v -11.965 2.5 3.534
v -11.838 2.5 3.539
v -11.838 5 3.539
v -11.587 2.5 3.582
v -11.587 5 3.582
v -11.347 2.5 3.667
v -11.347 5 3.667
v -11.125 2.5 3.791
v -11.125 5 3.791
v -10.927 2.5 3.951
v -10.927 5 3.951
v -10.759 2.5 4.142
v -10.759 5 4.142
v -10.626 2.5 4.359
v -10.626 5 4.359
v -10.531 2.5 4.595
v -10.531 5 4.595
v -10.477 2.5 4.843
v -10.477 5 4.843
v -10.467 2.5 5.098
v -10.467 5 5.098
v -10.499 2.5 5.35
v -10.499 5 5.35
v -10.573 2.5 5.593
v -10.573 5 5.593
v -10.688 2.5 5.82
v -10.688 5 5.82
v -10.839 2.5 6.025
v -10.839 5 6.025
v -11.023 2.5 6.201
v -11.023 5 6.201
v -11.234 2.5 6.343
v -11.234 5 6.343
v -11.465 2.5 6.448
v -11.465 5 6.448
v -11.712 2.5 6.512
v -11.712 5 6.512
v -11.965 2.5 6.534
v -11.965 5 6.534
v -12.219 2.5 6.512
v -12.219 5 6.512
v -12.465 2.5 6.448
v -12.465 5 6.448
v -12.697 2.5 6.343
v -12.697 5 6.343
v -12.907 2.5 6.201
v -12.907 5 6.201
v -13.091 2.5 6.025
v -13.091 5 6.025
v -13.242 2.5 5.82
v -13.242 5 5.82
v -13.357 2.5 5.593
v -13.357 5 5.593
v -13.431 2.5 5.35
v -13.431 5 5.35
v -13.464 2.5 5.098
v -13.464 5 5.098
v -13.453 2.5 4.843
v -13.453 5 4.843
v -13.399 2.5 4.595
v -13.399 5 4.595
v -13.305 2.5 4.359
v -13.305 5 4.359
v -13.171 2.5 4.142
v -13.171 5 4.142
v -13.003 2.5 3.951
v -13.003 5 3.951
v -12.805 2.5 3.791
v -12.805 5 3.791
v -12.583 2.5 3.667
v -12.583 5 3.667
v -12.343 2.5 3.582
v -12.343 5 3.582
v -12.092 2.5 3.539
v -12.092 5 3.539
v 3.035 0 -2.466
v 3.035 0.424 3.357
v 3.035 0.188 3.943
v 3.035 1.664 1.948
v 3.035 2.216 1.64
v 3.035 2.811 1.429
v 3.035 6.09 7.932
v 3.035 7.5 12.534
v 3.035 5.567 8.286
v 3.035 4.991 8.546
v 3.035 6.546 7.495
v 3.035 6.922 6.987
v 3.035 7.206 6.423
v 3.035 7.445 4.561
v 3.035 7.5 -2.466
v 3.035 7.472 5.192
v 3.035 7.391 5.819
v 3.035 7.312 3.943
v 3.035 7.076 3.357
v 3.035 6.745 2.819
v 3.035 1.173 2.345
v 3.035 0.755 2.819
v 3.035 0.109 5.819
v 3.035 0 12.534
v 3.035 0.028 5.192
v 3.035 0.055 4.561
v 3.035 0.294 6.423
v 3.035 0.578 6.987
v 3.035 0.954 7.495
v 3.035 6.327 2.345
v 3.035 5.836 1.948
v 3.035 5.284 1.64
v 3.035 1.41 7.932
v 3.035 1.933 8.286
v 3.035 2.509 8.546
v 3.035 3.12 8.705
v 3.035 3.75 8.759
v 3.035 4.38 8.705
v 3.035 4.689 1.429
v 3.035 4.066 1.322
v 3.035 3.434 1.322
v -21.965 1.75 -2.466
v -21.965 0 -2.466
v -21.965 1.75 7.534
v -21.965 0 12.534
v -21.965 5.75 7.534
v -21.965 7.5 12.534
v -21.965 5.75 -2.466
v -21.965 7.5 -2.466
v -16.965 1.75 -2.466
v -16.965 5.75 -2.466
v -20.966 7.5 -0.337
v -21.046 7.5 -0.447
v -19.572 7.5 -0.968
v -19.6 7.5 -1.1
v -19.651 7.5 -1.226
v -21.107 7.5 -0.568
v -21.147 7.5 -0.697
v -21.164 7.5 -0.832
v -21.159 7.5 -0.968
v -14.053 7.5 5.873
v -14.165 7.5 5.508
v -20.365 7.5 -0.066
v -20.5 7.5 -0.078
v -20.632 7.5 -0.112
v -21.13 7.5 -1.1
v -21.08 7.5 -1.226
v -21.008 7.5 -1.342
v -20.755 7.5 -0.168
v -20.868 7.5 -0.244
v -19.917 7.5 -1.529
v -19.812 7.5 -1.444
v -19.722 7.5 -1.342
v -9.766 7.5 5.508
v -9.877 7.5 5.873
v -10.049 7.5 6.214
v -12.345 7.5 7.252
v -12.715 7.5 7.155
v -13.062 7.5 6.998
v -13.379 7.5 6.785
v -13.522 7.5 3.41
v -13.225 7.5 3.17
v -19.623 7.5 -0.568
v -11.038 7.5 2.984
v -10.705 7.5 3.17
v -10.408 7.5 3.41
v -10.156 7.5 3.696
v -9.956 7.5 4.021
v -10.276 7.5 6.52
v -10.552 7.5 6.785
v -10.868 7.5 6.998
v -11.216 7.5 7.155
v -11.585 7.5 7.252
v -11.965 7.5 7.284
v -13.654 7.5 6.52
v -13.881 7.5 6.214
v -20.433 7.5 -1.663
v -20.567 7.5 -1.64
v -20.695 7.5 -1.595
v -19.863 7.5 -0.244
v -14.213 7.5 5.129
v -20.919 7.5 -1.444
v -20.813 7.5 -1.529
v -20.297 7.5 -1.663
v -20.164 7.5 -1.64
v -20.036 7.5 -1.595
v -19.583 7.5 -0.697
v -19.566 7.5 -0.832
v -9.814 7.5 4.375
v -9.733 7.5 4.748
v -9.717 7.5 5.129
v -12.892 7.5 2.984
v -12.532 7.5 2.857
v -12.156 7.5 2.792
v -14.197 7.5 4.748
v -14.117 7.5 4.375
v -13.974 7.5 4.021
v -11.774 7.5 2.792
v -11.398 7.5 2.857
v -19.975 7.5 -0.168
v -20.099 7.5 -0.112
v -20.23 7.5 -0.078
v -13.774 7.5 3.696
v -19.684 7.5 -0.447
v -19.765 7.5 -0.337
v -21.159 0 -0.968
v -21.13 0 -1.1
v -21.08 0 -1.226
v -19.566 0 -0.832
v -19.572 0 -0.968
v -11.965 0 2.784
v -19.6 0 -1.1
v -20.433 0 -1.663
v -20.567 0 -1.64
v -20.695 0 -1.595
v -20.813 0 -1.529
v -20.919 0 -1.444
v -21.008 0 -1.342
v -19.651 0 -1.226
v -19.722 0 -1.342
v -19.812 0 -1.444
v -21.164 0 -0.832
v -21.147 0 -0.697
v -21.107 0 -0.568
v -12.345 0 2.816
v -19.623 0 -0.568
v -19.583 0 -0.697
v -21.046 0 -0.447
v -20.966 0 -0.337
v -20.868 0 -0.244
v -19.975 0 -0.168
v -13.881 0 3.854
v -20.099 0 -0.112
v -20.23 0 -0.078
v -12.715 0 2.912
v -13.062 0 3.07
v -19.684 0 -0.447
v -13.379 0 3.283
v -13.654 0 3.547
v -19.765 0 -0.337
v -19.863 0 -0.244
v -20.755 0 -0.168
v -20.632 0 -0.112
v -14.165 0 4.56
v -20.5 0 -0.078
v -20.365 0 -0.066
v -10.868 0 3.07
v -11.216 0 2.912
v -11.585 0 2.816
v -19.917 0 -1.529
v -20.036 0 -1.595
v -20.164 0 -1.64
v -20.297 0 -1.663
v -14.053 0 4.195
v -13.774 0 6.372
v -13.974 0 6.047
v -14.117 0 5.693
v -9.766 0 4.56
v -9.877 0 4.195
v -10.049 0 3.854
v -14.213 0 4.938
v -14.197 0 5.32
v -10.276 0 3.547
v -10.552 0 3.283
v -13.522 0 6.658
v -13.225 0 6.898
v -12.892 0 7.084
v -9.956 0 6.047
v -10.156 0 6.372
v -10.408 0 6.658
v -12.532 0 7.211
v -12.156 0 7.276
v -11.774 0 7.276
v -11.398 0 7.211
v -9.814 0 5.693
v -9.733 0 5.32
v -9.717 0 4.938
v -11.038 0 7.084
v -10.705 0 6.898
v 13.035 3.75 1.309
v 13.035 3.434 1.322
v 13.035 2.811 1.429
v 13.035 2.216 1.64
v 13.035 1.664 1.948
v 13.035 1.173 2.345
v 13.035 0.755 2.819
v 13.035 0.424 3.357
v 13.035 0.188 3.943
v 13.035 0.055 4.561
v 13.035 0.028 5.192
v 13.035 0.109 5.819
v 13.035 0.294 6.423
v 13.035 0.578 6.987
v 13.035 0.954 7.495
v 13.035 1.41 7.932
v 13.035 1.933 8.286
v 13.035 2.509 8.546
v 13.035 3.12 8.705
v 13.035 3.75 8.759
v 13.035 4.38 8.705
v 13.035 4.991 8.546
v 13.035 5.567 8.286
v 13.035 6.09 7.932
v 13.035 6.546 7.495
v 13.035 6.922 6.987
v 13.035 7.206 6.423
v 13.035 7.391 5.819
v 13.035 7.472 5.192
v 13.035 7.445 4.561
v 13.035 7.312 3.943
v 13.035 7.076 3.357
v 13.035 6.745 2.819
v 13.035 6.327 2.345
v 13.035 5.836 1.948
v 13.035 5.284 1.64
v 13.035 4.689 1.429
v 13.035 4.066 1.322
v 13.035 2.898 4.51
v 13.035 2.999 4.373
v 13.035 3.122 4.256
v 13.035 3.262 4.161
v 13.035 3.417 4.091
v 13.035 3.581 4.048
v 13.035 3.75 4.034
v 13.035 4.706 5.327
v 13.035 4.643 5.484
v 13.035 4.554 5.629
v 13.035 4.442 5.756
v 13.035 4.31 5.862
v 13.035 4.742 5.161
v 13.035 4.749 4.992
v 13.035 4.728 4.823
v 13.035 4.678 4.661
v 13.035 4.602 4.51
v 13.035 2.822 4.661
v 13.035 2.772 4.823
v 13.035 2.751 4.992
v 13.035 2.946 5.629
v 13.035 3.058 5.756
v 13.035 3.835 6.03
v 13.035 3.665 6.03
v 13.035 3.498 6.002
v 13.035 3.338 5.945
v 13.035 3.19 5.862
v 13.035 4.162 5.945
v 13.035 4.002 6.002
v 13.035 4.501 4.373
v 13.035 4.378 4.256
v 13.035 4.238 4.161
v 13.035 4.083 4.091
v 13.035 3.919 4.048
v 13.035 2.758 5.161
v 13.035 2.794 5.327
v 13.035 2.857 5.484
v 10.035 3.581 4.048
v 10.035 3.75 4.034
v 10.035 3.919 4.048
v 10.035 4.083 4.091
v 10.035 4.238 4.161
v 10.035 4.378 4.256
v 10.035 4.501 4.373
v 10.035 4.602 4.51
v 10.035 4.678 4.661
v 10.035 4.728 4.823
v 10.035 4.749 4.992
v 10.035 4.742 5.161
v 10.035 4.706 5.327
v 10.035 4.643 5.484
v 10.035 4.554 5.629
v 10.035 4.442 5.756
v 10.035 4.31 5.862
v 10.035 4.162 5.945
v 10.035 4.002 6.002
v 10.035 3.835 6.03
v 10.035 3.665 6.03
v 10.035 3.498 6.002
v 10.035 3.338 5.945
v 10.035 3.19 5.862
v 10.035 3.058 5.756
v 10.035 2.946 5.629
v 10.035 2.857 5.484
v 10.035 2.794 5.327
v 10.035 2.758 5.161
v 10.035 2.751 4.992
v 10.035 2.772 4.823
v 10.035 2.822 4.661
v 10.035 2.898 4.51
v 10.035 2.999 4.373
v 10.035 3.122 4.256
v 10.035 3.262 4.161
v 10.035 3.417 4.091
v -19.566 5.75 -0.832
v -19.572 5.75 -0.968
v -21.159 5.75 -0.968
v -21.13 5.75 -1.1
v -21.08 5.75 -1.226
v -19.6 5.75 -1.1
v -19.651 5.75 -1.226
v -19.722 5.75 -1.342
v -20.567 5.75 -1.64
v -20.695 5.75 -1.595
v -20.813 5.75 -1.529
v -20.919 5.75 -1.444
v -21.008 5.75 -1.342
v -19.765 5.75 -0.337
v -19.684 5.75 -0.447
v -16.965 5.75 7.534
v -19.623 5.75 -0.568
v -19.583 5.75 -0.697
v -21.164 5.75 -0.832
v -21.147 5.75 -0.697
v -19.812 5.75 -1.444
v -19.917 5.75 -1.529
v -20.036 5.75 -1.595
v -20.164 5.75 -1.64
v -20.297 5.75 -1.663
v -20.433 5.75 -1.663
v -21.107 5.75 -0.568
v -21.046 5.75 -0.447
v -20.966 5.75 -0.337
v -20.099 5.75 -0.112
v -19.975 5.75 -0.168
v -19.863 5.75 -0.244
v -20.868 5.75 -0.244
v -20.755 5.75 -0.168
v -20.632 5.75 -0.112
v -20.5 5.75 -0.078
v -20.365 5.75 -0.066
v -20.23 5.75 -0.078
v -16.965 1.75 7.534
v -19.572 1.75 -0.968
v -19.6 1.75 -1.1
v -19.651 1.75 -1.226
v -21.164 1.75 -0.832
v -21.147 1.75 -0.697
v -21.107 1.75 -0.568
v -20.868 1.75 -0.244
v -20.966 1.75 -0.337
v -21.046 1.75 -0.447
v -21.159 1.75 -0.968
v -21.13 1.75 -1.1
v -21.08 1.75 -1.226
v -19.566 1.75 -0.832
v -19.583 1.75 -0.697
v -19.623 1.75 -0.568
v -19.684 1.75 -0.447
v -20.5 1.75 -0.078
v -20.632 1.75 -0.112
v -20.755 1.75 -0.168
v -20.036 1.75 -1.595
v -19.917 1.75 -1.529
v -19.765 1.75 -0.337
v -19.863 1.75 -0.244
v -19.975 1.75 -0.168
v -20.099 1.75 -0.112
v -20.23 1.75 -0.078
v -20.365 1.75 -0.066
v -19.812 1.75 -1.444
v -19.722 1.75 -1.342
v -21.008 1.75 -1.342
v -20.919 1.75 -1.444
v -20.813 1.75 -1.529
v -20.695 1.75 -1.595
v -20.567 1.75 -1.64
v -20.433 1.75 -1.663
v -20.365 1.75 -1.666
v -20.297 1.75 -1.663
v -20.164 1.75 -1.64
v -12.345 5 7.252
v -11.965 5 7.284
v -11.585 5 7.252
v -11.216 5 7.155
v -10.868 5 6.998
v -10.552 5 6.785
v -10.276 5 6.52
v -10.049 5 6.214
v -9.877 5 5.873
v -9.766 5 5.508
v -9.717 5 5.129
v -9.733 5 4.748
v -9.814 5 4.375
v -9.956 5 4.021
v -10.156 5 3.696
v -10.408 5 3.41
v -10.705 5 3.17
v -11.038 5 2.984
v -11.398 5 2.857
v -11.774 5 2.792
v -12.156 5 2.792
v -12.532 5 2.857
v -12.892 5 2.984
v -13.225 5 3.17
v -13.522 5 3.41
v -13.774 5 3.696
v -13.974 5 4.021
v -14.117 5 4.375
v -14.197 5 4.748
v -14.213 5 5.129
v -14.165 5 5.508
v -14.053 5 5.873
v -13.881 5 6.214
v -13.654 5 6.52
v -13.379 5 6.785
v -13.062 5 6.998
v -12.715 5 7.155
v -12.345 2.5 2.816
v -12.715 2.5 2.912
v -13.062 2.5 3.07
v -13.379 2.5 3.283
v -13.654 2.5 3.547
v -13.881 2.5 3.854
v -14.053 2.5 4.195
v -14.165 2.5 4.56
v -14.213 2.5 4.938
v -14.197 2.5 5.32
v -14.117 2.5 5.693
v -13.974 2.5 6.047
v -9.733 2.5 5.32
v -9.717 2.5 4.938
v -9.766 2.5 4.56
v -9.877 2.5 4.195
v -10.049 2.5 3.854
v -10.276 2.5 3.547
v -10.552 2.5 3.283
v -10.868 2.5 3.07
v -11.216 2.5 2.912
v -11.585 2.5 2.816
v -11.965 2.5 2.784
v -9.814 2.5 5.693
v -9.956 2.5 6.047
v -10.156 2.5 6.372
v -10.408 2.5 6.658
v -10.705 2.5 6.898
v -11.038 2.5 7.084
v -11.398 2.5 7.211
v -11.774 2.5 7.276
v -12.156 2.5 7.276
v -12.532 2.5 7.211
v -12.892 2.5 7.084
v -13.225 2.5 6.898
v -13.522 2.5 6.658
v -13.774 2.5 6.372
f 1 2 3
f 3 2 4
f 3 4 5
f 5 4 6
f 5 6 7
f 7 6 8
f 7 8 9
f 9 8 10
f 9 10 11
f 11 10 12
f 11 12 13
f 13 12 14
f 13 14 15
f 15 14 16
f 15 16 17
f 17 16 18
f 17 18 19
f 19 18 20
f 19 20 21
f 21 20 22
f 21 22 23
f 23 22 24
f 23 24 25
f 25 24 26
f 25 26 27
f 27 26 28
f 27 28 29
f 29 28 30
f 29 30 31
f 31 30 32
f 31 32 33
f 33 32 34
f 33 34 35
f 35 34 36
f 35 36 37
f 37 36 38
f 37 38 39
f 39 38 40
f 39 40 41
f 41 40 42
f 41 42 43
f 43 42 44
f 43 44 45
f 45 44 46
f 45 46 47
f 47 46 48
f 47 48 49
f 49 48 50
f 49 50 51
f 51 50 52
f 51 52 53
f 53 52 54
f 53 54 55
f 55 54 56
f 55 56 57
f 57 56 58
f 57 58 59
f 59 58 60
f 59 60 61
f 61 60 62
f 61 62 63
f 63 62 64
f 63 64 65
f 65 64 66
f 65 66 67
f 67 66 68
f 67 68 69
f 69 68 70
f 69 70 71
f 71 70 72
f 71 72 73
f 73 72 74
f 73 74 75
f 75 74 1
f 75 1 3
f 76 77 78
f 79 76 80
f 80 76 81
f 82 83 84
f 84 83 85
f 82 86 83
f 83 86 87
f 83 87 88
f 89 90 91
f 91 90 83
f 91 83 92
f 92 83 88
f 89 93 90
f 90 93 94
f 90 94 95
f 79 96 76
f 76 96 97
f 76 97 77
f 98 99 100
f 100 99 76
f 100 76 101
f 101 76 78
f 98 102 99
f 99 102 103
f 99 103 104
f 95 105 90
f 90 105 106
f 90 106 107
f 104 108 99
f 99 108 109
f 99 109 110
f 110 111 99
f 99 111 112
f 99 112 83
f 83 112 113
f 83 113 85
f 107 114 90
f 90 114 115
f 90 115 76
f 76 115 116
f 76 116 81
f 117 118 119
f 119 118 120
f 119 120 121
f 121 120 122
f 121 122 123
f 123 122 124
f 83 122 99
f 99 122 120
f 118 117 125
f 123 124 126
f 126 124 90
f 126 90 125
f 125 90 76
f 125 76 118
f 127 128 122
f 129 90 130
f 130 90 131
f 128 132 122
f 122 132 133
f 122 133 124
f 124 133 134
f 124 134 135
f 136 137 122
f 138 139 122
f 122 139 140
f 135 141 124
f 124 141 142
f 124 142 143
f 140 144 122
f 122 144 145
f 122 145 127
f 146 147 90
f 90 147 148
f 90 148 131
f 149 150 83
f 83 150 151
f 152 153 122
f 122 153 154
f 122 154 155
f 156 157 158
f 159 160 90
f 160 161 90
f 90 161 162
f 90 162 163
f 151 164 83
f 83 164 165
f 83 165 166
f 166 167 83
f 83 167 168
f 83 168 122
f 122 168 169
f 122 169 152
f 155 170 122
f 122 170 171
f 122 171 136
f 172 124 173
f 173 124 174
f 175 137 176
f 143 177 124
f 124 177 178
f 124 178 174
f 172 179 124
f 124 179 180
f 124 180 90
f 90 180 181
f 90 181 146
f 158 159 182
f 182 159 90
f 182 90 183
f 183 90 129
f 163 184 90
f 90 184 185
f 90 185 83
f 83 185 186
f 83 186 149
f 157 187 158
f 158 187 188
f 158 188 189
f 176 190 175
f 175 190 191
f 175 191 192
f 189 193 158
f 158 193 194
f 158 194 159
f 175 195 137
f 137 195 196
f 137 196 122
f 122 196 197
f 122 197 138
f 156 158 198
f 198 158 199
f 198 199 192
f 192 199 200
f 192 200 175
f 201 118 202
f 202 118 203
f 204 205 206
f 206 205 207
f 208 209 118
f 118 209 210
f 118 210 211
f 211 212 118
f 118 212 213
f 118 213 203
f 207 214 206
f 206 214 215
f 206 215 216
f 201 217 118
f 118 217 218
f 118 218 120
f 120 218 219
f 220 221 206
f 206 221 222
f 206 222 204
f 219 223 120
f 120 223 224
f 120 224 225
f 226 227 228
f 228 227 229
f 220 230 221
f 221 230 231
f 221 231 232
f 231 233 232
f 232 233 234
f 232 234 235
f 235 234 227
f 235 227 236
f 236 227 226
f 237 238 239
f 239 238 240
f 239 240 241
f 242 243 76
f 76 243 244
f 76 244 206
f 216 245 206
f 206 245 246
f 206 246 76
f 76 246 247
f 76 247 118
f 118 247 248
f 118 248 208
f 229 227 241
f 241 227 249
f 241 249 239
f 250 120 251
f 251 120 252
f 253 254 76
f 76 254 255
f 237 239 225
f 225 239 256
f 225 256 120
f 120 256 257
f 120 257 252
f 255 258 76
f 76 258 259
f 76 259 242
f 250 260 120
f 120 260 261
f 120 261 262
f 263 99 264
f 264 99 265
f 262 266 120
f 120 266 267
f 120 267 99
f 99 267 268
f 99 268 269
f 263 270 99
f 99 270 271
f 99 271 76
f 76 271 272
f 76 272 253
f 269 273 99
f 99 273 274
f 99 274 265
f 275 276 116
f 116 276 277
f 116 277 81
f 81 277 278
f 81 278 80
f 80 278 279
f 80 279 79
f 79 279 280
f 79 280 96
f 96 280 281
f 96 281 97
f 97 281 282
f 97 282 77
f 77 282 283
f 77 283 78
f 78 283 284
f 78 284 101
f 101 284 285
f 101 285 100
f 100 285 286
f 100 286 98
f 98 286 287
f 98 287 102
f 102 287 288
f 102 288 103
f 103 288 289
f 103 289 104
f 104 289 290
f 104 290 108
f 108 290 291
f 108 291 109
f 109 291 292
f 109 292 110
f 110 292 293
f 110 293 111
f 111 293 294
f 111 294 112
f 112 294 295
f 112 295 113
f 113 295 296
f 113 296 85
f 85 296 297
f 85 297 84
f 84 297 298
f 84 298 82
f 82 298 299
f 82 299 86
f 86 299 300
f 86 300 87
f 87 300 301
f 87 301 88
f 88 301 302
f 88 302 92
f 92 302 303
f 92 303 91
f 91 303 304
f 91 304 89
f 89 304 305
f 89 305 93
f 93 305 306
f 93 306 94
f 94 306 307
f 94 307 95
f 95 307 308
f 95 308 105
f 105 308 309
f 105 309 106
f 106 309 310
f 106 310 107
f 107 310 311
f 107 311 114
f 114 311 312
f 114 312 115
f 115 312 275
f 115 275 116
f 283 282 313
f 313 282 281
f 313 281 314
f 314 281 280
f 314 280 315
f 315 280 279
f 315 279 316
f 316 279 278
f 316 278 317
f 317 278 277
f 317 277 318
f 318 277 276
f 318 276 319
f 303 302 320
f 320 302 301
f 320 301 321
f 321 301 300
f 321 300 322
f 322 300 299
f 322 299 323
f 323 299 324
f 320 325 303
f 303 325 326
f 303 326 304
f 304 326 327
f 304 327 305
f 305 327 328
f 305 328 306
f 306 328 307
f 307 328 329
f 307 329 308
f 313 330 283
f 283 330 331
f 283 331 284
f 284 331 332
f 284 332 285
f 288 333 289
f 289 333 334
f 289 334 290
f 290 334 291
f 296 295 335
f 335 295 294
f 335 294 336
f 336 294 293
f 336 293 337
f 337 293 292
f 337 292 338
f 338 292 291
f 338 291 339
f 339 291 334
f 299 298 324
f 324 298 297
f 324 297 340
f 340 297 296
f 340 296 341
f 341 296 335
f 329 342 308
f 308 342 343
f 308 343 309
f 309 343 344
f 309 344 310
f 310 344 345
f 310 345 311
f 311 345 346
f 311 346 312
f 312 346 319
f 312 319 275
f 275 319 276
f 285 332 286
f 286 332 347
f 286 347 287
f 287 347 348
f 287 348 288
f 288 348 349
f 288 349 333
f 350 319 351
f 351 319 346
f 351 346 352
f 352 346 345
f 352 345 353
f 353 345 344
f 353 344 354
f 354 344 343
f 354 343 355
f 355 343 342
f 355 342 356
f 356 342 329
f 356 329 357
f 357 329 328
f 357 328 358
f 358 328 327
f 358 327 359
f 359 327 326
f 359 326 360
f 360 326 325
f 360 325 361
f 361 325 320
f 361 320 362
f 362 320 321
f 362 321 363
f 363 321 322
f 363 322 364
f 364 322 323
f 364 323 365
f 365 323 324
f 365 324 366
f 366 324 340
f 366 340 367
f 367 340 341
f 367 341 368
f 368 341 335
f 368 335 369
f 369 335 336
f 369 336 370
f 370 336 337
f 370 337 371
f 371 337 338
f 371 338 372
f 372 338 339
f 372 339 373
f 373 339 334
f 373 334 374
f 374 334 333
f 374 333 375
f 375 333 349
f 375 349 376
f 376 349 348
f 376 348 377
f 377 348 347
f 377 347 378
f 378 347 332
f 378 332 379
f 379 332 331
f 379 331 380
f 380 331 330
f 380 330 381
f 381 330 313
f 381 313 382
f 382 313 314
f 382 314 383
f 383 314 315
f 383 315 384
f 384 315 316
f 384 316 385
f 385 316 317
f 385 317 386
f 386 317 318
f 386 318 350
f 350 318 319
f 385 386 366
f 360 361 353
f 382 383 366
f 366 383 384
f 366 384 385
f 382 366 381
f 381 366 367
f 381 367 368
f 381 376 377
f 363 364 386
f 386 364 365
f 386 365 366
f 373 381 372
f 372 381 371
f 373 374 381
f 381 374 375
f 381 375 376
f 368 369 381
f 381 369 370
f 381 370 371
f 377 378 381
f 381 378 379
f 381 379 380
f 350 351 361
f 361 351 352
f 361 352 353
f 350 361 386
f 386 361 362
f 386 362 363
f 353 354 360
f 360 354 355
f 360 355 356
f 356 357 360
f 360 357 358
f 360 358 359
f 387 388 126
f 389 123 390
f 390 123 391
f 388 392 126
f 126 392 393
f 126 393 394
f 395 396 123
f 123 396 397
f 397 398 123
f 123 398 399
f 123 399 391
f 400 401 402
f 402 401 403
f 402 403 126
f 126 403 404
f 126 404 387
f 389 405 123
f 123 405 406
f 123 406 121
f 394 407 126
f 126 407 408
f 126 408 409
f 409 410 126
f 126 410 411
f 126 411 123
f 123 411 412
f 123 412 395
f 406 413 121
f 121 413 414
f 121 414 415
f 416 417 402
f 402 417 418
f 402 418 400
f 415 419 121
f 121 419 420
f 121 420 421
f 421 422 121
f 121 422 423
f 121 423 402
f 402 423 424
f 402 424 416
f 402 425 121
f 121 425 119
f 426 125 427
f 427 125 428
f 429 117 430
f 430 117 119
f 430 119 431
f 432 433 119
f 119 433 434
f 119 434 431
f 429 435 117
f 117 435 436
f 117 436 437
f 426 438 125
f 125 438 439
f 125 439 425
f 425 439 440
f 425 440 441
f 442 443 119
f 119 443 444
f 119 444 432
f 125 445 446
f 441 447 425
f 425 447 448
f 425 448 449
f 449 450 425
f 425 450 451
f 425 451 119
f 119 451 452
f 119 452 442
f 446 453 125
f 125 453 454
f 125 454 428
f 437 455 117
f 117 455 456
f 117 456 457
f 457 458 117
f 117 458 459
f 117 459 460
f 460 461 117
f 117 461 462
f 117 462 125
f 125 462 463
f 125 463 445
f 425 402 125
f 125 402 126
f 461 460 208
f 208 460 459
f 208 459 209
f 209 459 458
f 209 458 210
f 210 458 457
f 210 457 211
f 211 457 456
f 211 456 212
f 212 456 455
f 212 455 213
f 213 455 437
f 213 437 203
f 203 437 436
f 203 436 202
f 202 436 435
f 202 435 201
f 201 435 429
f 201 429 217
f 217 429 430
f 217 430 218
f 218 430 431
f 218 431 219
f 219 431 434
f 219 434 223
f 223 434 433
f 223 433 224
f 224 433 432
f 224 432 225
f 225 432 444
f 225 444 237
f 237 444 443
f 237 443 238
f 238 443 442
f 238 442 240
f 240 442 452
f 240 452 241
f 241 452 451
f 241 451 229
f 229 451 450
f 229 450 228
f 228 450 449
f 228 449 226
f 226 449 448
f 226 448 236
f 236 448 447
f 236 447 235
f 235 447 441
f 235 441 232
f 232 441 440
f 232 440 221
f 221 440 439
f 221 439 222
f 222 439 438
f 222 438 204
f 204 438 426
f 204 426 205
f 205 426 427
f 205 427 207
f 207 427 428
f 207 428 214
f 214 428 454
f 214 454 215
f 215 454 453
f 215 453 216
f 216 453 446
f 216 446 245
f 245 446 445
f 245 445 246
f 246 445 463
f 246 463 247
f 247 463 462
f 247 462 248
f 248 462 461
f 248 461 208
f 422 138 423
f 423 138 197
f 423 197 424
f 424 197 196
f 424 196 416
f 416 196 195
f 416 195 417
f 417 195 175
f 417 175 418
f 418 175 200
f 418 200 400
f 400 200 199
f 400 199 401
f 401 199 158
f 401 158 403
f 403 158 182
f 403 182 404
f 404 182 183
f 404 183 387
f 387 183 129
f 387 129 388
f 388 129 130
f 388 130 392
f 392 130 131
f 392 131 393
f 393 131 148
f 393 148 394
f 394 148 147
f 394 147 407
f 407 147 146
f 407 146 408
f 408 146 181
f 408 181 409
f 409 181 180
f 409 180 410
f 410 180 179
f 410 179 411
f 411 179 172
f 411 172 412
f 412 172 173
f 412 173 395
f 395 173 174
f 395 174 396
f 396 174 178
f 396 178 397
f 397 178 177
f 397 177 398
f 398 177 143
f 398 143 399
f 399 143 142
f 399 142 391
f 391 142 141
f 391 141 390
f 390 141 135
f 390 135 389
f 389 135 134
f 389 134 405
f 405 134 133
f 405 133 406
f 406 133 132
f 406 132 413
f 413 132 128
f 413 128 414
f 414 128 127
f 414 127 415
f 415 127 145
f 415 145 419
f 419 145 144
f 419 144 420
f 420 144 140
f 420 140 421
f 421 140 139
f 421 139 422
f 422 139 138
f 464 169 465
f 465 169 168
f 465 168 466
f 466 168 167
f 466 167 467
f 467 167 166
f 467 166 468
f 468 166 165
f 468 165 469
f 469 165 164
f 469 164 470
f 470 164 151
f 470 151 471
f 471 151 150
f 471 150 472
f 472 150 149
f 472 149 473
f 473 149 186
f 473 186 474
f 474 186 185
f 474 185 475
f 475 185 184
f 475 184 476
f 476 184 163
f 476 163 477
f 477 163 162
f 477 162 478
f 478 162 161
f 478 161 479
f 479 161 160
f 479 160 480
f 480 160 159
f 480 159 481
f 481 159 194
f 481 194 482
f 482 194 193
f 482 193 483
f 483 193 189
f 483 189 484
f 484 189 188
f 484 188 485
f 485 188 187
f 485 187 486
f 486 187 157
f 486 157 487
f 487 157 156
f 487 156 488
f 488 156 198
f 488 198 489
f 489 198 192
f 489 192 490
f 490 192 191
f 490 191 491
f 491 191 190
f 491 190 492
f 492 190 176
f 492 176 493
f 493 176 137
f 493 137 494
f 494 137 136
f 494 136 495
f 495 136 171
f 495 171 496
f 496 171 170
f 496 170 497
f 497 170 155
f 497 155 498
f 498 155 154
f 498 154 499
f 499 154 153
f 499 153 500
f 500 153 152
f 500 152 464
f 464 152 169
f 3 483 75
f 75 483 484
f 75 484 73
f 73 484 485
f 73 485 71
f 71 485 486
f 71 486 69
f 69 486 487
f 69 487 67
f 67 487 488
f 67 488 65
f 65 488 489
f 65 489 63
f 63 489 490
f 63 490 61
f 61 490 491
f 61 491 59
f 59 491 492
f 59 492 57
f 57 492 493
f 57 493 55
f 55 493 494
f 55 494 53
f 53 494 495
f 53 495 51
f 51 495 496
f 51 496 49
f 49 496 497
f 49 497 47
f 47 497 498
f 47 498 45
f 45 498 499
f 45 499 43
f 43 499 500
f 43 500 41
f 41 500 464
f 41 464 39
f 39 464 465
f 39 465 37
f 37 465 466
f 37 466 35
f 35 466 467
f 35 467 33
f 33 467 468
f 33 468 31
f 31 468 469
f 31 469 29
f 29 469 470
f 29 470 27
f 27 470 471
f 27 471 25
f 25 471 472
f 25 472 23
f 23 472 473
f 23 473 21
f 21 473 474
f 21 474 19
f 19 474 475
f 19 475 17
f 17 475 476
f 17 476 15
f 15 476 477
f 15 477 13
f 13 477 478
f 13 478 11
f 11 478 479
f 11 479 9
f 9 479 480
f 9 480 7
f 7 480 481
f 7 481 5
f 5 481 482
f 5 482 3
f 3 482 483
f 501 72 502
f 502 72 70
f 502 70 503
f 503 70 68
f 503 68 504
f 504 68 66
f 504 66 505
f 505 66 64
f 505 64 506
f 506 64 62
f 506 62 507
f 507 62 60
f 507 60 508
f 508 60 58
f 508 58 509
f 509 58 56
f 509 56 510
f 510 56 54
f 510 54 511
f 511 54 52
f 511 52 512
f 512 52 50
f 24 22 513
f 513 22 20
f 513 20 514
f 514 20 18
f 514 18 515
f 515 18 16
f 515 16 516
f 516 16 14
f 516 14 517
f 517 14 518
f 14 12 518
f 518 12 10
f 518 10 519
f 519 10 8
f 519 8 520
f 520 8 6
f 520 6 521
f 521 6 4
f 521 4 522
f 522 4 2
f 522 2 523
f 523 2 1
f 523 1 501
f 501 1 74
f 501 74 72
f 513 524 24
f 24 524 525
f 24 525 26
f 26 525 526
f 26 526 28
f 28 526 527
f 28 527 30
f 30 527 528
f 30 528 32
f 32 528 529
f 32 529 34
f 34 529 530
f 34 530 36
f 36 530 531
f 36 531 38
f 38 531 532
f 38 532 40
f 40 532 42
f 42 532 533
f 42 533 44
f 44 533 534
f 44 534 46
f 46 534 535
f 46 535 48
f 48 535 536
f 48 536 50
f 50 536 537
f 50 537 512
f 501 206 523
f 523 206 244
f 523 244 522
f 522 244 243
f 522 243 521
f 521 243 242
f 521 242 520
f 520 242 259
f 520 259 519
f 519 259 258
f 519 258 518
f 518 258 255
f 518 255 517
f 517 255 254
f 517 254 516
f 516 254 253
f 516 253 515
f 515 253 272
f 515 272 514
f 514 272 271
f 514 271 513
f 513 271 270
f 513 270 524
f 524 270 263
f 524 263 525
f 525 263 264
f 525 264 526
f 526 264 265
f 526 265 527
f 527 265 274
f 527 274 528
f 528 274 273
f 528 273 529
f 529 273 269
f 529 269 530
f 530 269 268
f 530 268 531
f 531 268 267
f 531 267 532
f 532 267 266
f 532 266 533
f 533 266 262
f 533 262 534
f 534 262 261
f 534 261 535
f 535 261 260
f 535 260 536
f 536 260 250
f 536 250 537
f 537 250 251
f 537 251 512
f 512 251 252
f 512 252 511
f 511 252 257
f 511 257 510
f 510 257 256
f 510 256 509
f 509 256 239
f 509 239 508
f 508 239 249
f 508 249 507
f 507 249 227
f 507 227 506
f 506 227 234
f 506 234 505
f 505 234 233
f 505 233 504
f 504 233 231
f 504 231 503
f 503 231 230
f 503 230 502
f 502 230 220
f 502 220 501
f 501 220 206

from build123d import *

# Parameters (mm, degrees)
SKETCH1_W           = 25
SKETCH1_H           = 15
BOSS_EXTRUDE1_DEPTH = 7.5
SKETCH2_R           = 3.725
BOSS_EXTRUDE2_DEPTH = 10
SKETCH3_R           = 1
CUT_EXTRUDE1_DEPTH  = 3
SKETCH4_W           = 10
SKETCH4_H           = 4
CUT_EXTRUDE2_DEPTH  = 5
SKETCH5_R           = 0.8
CUT_EXTRUDE3_DEPTH  = 7.5
SKETCH6_R           = 1.5
CUT_EXTRUDE4_DEPTH  = 7.5
SKETCH6_3_R         = 2.25
SKETCH6_3_R_2       = 1.5
CUT_EXTRUDE5_DEPTH  = 2.5
CUT_EXTRUDE6_START  = -2.5
SKETCH7_R           = 2.25
CUT_EXTRUDE6_DEPTH  = 2.5


with BuildPart() as part:
    # Sketch1 → Boss-Extrude1 (new body)
    with BuildSketch(Plane(origin=(0, 0, 0), x_dir=(1, 0, 0), z_dir=(0, 1, 0))):
        with Locations((-9.465160398, -5.033961787)):
            Rectangle(SKETCH1_W, SKETCH1_H)
    extrude(amount=BOSS_EXTRUDE1_DEPTH)

    # Sketch2 → Boss-Extrude2 (add)
    with BuildSketch(Plane(origin=(3.034839602, 0, 0), x_dir=(0, 0, -1), z_dir=(1, 0, 0))):
        with Locations((-5.033961787, 3.75)):
            Circle(SKETCH2_R)
    extrude(amount=BOSS_EXTRUDE2_DEPTH)

    # Sketch3 → Cut-Extrude1 (cut)
    with BuildSketch(Plane(origin=(13.034839602, 0, 0), x_dir=(0, 0, -1), z_dir=(1, 0, 0))):
        with Locations((-5.033961787, 3.75)):
            Circle(SKETCH3_R)
    extrude(amount=-CUT_EXTRUDE1_DEPTH, mode=Mode.SUBTRACT)

    # Sketch4 → Cut-Extrude2 (cut)
    with BuildSketch(Plane.ZY.offset(21.965160398)):
        with Locations((2.533961787, 3.75)):
            Rectangle(SKETCH4_W, SKETCH4_H)
    extrude(amount=-CUT_EXTRUDE2_DEPTH, mode=Mode.SUBTRACT)

    # Sketch5 → Cut-Extrude3 (cut)
    with BuildSketch(Plane(origin=(0, 7.5, 0), x_dir=(1, 0, 0), z_dir=(0, 1, 0))):
        with Locations((-20.365160398, 0.866038213)):
            Circle(SKETCH5_R)
    extrude(amount=-CUT_EXTRUDE3_DEPTH, mode=Mode.SUBTRACT)

    # Sketch6 → Cut-Extrude4 (cut)
    with BuildSketch(Plane(origin=(0, 7.5, 0), x_dir=(1, 0, 0), z_dir=(0, 1, 0))):
        with Locations((-11.965160398, -5.033961787)):
            Circle(SKETCH6_R)
    extrude(amount=-CUT_EXTRUDE4_DEPTH, mode=Mode.SUBTRACT)

    # Sketch6<3> → Cut-Extrude5 (cut)
    with BuildSketch(Plane(origin=(0, 7.5, 0), x_dir=(1, 0, 0), z_dir=(0, 1, 0))):
        with Locations((-11.965160398, -5.033961787)):
            Circle(SKETCH6_3_R)
        with Locations((-11.965160398, -5.033961787)):
            Circle(SKETCH6_3_R_2, mode=Mode.SUBTRACT)
    extrude(amount=-CUT_EXTRUDE5_DEPTH, mode=Mode.SUBTRACT)

    # Sketch7 → Cut-Extrude6 (cut)
    with BuildSketch(Plane.XZ.offset(CUT_EXTRUDE6_START)):
        with Locations((-11.965160398, 5.033961787)):
            Circle(SKETCH7_R)
    extrude(amount=CUT_EXTRUDE6_DEPTH, mode=Mode.SUBTRACT)


solid = part.part
